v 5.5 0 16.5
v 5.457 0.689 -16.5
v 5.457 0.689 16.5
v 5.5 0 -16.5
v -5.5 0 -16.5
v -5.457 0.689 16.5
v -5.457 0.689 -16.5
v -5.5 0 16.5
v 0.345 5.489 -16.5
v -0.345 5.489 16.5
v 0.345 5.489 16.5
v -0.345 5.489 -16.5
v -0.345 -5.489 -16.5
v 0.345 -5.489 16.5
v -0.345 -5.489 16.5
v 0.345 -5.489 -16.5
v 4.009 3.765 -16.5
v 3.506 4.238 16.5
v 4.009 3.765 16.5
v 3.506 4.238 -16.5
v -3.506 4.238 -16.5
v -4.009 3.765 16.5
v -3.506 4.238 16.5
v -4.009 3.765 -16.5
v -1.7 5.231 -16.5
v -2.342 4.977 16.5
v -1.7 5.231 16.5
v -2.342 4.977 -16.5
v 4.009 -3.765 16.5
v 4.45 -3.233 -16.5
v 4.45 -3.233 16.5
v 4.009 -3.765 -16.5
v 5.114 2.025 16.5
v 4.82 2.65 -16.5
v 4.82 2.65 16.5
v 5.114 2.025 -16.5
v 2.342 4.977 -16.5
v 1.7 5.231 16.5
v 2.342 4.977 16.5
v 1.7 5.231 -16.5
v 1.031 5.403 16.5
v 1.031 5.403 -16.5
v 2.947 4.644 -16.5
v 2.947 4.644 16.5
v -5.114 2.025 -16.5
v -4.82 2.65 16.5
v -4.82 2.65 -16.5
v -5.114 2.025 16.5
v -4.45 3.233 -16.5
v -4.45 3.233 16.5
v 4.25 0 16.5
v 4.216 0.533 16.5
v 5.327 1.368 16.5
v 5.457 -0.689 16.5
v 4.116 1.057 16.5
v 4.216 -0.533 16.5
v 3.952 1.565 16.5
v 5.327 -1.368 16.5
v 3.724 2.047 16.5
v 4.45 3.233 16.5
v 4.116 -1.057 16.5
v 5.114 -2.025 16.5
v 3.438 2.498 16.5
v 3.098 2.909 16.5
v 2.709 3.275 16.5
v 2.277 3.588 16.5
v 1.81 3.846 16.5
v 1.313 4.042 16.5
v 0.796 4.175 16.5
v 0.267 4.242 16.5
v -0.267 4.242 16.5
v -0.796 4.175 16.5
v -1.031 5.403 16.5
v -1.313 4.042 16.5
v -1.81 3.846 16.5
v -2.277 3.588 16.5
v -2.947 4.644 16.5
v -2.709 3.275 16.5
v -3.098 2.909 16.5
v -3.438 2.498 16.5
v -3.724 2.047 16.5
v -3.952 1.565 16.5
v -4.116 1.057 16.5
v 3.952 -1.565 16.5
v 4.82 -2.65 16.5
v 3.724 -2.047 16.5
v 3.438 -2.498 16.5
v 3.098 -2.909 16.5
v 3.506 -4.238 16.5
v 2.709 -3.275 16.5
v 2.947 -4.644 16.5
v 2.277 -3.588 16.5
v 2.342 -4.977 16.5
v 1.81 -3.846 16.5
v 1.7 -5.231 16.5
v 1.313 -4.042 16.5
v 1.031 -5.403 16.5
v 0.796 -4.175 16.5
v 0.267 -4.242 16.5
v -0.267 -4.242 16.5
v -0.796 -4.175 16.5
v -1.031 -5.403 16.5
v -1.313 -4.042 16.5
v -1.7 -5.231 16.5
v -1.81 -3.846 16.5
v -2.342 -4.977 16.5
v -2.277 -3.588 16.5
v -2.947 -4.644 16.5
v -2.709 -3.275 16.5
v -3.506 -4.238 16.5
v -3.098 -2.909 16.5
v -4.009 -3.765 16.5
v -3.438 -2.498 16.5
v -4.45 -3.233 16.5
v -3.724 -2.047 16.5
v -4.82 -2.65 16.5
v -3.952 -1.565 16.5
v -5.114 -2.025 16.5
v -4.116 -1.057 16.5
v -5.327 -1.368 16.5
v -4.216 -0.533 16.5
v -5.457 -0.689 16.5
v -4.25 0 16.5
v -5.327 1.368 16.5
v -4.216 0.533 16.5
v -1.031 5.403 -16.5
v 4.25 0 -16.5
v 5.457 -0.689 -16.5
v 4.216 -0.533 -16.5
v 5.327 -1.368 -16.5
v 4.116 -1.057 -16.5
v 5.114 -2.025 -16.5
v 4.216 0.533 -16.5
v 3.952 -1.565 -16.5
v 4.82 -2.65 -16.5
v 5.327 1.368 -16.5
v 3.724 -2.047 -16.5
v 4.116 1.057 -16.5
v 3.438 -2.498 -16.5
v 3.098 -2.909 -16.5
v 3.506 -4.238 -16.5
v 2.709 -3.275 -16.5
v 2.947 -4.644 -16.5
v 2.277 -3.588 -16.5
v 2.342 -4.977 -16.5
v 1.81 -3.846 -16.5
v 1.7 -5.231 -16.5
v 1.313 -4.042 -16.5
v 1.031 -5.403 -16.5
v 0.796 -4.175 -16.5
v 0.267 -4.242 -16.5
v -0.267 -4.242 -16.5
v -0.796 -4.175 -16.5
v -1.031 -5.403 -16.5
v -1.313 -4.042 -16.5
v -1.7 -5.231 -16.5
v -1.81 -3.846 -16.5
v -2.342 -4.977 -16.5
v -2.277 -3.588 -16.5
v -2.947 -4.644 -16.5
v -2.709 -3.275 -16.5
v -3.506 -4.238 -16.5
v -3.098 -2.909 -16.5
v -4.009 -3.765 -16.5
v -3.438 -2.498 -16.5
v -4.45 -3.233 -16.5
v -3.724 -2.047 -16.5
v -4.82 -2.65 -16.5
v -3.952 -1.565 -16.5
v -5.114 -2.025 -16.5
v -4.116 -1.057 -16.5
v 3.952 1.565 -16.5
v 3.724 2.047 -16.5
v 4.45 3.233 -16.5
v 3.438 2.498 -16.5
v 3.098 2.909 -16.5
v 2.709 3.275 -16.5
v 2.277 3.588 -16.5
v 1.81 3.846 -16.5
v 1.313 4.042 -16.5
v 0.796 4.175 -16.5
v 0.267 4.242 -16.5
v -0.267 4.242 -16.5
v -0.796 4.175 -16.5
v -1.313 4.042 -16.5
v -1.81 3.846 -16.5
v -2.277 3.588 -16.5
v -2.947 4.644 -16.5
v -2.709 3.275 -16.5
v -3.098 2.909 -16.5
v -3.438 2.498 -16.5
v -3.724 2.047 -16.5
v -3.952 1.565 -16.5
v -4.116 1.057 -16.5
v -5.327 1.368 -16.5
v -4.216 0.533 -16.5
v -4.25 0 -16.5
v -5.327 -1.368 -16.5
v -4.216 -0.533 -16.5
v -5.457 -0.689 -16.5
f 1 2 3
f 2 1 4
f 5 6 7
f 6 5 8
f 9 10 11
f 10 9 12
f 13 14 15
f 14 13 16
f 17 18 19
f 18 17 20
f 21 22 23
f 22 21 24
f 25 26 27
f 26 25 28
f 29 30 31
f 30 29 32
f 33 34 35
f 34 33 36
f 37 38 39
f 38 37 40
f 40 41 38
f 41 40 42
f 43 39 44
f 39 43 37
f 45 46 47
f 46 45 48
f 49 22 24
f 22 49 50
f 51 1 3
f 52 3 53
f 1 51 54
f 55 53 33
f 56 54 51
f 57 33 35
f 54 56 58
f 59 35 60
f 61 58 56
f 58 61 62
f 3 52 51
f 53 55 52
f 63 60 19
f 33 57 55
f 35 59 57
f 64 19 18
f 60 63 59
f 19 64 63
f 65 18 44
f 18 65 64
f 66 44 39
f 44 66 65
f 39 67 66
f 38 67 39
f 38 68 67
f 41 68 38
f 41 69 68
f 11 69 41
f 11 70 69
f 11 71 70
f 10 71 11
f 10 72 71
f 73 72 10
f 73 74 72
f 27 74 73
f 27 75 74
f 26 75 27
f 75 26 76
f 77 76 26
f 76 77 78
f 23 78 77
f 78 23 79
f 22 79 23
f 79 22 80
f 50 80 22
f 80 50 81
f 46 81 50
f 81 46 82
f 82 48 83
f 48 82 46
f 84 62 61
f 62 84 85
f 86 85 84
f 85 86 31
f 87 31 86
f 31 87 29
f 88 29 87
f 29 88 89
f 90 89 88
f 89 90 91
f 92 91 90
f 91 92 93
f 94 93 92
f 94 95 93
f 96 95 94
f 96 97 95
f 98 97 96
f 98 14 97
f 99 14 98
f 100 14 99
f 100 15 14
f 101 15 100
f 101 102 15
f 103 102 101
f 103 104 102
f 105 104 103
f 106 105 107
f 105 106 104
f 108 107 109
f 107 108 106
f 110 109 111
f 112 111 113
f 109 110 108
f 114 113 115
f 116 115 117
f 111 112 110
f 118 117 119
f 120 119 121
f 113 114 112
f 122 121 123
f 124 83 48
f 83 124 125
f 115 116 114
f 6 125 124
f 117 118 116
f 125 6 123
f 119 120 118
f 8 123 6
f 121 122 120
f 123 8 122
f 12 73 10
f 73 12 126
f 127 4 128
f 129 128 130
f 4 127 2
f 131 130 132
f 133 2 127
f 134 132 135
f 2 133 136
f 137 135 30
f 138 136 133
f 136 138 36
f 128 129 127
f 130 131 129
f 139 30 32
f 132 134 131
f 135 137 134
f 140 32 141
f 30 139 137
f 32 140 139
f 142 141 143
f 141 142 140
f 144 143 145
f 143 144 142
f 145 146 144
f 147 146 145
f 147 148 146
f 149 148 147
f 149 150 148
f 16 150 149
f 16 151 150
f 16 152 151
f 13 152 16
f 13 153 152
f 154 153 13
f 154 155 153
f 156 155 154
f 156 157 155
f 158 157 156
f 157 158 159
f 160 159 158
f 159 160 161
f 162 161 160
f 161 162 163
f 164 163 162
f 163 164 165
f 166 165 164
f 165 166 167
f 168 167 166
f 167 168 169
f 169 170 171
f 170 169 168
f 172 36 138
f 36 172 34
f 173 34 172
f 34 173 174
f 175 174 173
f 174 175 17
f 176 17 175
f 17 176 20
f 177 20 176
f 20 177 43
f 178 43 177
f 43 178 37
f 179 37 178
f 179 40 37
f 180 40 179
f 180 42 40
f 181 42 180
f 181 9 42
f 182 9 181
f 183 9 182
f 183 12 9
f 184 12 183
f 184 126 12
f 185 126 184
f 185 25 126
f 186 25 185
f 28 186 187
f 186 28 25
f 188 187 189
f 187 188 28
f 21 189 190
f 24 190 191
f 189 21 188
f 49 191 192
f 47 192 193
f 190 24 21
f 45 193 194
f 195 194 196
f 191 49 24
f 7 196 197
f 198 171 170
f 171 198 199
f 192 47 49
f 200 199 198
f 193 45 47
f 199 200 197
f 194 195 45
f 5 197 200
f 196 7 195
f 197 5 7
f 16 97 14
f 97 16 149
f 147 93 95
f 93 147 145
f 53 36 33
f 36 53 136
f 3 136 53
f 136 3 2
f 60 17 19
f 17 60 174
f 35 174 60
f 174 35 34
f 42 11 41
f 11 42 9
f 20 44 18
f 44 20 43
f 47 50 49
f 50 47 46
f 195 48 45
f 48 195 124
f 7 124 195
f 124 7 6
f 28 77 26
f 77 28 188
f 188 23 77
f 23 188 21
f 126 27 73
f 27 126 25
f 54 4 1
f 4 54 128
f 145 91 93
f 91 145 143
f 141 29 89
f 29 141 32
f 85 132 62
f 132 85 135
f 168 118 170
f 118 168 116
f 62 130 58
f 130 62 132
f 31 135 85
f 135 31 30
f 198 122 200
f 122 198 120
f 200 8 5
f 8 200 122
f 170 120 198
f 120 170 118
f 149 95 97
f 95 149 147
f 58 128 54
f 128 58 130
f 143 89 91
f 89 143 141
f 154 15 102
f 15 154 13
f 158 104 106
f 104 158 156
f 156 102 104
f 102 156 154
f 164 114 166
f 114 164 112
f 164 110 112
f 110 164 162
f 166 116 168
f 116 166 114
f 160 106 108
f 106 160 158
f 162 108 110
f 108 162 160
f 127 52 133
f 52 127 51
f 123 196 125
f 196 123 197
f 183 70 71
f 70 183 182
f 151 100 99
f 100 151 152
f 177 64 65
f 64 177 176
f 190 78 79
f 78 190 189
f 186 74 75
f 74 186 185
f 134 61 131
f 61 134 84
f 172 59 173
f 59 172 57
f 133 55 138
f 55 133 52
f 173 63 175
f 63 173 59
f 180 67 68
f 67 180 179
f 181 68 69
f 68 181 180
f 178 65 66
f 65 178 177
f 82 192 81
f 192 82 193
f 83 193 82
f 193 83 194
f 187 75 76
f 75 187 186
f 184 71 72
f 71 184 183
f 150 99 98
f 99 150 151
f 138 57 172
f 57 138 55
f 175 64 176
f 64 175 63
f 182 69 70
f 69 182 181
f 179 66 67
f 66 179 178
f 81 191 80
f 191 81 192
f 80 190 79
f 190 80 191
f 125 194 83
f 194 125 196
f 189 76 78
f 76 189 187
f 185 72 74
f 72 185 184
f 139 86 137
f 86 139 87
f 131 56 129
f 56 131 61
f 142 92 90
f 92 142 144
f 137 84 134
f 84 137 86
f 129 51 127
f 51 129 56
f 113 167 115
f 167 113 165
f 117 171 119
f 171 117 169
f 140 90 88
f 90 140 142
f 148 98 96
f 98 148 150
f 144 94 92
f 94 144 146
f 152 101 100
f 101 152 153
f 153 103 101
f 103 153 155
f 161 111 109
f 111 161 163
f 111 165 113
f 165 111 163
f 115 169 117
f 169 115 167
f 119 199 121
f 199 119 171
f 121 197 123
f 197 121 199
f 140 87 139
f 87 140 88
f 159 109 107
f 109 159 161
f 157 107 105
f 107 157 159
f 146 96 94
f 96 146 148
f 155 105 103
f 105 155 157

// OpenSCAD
$fn = 50;


difference() {
	union() {
		translate(v = [0, 0, -16.5000000000]) {
			cylinder(h = 33, r = 5.5000000000);
		}
	}
	union() {
		translate(v = [0, 0, -100.0000000000]) {
			cylinder(h = 200, r = 4.2500000000);
		}
	}
}
